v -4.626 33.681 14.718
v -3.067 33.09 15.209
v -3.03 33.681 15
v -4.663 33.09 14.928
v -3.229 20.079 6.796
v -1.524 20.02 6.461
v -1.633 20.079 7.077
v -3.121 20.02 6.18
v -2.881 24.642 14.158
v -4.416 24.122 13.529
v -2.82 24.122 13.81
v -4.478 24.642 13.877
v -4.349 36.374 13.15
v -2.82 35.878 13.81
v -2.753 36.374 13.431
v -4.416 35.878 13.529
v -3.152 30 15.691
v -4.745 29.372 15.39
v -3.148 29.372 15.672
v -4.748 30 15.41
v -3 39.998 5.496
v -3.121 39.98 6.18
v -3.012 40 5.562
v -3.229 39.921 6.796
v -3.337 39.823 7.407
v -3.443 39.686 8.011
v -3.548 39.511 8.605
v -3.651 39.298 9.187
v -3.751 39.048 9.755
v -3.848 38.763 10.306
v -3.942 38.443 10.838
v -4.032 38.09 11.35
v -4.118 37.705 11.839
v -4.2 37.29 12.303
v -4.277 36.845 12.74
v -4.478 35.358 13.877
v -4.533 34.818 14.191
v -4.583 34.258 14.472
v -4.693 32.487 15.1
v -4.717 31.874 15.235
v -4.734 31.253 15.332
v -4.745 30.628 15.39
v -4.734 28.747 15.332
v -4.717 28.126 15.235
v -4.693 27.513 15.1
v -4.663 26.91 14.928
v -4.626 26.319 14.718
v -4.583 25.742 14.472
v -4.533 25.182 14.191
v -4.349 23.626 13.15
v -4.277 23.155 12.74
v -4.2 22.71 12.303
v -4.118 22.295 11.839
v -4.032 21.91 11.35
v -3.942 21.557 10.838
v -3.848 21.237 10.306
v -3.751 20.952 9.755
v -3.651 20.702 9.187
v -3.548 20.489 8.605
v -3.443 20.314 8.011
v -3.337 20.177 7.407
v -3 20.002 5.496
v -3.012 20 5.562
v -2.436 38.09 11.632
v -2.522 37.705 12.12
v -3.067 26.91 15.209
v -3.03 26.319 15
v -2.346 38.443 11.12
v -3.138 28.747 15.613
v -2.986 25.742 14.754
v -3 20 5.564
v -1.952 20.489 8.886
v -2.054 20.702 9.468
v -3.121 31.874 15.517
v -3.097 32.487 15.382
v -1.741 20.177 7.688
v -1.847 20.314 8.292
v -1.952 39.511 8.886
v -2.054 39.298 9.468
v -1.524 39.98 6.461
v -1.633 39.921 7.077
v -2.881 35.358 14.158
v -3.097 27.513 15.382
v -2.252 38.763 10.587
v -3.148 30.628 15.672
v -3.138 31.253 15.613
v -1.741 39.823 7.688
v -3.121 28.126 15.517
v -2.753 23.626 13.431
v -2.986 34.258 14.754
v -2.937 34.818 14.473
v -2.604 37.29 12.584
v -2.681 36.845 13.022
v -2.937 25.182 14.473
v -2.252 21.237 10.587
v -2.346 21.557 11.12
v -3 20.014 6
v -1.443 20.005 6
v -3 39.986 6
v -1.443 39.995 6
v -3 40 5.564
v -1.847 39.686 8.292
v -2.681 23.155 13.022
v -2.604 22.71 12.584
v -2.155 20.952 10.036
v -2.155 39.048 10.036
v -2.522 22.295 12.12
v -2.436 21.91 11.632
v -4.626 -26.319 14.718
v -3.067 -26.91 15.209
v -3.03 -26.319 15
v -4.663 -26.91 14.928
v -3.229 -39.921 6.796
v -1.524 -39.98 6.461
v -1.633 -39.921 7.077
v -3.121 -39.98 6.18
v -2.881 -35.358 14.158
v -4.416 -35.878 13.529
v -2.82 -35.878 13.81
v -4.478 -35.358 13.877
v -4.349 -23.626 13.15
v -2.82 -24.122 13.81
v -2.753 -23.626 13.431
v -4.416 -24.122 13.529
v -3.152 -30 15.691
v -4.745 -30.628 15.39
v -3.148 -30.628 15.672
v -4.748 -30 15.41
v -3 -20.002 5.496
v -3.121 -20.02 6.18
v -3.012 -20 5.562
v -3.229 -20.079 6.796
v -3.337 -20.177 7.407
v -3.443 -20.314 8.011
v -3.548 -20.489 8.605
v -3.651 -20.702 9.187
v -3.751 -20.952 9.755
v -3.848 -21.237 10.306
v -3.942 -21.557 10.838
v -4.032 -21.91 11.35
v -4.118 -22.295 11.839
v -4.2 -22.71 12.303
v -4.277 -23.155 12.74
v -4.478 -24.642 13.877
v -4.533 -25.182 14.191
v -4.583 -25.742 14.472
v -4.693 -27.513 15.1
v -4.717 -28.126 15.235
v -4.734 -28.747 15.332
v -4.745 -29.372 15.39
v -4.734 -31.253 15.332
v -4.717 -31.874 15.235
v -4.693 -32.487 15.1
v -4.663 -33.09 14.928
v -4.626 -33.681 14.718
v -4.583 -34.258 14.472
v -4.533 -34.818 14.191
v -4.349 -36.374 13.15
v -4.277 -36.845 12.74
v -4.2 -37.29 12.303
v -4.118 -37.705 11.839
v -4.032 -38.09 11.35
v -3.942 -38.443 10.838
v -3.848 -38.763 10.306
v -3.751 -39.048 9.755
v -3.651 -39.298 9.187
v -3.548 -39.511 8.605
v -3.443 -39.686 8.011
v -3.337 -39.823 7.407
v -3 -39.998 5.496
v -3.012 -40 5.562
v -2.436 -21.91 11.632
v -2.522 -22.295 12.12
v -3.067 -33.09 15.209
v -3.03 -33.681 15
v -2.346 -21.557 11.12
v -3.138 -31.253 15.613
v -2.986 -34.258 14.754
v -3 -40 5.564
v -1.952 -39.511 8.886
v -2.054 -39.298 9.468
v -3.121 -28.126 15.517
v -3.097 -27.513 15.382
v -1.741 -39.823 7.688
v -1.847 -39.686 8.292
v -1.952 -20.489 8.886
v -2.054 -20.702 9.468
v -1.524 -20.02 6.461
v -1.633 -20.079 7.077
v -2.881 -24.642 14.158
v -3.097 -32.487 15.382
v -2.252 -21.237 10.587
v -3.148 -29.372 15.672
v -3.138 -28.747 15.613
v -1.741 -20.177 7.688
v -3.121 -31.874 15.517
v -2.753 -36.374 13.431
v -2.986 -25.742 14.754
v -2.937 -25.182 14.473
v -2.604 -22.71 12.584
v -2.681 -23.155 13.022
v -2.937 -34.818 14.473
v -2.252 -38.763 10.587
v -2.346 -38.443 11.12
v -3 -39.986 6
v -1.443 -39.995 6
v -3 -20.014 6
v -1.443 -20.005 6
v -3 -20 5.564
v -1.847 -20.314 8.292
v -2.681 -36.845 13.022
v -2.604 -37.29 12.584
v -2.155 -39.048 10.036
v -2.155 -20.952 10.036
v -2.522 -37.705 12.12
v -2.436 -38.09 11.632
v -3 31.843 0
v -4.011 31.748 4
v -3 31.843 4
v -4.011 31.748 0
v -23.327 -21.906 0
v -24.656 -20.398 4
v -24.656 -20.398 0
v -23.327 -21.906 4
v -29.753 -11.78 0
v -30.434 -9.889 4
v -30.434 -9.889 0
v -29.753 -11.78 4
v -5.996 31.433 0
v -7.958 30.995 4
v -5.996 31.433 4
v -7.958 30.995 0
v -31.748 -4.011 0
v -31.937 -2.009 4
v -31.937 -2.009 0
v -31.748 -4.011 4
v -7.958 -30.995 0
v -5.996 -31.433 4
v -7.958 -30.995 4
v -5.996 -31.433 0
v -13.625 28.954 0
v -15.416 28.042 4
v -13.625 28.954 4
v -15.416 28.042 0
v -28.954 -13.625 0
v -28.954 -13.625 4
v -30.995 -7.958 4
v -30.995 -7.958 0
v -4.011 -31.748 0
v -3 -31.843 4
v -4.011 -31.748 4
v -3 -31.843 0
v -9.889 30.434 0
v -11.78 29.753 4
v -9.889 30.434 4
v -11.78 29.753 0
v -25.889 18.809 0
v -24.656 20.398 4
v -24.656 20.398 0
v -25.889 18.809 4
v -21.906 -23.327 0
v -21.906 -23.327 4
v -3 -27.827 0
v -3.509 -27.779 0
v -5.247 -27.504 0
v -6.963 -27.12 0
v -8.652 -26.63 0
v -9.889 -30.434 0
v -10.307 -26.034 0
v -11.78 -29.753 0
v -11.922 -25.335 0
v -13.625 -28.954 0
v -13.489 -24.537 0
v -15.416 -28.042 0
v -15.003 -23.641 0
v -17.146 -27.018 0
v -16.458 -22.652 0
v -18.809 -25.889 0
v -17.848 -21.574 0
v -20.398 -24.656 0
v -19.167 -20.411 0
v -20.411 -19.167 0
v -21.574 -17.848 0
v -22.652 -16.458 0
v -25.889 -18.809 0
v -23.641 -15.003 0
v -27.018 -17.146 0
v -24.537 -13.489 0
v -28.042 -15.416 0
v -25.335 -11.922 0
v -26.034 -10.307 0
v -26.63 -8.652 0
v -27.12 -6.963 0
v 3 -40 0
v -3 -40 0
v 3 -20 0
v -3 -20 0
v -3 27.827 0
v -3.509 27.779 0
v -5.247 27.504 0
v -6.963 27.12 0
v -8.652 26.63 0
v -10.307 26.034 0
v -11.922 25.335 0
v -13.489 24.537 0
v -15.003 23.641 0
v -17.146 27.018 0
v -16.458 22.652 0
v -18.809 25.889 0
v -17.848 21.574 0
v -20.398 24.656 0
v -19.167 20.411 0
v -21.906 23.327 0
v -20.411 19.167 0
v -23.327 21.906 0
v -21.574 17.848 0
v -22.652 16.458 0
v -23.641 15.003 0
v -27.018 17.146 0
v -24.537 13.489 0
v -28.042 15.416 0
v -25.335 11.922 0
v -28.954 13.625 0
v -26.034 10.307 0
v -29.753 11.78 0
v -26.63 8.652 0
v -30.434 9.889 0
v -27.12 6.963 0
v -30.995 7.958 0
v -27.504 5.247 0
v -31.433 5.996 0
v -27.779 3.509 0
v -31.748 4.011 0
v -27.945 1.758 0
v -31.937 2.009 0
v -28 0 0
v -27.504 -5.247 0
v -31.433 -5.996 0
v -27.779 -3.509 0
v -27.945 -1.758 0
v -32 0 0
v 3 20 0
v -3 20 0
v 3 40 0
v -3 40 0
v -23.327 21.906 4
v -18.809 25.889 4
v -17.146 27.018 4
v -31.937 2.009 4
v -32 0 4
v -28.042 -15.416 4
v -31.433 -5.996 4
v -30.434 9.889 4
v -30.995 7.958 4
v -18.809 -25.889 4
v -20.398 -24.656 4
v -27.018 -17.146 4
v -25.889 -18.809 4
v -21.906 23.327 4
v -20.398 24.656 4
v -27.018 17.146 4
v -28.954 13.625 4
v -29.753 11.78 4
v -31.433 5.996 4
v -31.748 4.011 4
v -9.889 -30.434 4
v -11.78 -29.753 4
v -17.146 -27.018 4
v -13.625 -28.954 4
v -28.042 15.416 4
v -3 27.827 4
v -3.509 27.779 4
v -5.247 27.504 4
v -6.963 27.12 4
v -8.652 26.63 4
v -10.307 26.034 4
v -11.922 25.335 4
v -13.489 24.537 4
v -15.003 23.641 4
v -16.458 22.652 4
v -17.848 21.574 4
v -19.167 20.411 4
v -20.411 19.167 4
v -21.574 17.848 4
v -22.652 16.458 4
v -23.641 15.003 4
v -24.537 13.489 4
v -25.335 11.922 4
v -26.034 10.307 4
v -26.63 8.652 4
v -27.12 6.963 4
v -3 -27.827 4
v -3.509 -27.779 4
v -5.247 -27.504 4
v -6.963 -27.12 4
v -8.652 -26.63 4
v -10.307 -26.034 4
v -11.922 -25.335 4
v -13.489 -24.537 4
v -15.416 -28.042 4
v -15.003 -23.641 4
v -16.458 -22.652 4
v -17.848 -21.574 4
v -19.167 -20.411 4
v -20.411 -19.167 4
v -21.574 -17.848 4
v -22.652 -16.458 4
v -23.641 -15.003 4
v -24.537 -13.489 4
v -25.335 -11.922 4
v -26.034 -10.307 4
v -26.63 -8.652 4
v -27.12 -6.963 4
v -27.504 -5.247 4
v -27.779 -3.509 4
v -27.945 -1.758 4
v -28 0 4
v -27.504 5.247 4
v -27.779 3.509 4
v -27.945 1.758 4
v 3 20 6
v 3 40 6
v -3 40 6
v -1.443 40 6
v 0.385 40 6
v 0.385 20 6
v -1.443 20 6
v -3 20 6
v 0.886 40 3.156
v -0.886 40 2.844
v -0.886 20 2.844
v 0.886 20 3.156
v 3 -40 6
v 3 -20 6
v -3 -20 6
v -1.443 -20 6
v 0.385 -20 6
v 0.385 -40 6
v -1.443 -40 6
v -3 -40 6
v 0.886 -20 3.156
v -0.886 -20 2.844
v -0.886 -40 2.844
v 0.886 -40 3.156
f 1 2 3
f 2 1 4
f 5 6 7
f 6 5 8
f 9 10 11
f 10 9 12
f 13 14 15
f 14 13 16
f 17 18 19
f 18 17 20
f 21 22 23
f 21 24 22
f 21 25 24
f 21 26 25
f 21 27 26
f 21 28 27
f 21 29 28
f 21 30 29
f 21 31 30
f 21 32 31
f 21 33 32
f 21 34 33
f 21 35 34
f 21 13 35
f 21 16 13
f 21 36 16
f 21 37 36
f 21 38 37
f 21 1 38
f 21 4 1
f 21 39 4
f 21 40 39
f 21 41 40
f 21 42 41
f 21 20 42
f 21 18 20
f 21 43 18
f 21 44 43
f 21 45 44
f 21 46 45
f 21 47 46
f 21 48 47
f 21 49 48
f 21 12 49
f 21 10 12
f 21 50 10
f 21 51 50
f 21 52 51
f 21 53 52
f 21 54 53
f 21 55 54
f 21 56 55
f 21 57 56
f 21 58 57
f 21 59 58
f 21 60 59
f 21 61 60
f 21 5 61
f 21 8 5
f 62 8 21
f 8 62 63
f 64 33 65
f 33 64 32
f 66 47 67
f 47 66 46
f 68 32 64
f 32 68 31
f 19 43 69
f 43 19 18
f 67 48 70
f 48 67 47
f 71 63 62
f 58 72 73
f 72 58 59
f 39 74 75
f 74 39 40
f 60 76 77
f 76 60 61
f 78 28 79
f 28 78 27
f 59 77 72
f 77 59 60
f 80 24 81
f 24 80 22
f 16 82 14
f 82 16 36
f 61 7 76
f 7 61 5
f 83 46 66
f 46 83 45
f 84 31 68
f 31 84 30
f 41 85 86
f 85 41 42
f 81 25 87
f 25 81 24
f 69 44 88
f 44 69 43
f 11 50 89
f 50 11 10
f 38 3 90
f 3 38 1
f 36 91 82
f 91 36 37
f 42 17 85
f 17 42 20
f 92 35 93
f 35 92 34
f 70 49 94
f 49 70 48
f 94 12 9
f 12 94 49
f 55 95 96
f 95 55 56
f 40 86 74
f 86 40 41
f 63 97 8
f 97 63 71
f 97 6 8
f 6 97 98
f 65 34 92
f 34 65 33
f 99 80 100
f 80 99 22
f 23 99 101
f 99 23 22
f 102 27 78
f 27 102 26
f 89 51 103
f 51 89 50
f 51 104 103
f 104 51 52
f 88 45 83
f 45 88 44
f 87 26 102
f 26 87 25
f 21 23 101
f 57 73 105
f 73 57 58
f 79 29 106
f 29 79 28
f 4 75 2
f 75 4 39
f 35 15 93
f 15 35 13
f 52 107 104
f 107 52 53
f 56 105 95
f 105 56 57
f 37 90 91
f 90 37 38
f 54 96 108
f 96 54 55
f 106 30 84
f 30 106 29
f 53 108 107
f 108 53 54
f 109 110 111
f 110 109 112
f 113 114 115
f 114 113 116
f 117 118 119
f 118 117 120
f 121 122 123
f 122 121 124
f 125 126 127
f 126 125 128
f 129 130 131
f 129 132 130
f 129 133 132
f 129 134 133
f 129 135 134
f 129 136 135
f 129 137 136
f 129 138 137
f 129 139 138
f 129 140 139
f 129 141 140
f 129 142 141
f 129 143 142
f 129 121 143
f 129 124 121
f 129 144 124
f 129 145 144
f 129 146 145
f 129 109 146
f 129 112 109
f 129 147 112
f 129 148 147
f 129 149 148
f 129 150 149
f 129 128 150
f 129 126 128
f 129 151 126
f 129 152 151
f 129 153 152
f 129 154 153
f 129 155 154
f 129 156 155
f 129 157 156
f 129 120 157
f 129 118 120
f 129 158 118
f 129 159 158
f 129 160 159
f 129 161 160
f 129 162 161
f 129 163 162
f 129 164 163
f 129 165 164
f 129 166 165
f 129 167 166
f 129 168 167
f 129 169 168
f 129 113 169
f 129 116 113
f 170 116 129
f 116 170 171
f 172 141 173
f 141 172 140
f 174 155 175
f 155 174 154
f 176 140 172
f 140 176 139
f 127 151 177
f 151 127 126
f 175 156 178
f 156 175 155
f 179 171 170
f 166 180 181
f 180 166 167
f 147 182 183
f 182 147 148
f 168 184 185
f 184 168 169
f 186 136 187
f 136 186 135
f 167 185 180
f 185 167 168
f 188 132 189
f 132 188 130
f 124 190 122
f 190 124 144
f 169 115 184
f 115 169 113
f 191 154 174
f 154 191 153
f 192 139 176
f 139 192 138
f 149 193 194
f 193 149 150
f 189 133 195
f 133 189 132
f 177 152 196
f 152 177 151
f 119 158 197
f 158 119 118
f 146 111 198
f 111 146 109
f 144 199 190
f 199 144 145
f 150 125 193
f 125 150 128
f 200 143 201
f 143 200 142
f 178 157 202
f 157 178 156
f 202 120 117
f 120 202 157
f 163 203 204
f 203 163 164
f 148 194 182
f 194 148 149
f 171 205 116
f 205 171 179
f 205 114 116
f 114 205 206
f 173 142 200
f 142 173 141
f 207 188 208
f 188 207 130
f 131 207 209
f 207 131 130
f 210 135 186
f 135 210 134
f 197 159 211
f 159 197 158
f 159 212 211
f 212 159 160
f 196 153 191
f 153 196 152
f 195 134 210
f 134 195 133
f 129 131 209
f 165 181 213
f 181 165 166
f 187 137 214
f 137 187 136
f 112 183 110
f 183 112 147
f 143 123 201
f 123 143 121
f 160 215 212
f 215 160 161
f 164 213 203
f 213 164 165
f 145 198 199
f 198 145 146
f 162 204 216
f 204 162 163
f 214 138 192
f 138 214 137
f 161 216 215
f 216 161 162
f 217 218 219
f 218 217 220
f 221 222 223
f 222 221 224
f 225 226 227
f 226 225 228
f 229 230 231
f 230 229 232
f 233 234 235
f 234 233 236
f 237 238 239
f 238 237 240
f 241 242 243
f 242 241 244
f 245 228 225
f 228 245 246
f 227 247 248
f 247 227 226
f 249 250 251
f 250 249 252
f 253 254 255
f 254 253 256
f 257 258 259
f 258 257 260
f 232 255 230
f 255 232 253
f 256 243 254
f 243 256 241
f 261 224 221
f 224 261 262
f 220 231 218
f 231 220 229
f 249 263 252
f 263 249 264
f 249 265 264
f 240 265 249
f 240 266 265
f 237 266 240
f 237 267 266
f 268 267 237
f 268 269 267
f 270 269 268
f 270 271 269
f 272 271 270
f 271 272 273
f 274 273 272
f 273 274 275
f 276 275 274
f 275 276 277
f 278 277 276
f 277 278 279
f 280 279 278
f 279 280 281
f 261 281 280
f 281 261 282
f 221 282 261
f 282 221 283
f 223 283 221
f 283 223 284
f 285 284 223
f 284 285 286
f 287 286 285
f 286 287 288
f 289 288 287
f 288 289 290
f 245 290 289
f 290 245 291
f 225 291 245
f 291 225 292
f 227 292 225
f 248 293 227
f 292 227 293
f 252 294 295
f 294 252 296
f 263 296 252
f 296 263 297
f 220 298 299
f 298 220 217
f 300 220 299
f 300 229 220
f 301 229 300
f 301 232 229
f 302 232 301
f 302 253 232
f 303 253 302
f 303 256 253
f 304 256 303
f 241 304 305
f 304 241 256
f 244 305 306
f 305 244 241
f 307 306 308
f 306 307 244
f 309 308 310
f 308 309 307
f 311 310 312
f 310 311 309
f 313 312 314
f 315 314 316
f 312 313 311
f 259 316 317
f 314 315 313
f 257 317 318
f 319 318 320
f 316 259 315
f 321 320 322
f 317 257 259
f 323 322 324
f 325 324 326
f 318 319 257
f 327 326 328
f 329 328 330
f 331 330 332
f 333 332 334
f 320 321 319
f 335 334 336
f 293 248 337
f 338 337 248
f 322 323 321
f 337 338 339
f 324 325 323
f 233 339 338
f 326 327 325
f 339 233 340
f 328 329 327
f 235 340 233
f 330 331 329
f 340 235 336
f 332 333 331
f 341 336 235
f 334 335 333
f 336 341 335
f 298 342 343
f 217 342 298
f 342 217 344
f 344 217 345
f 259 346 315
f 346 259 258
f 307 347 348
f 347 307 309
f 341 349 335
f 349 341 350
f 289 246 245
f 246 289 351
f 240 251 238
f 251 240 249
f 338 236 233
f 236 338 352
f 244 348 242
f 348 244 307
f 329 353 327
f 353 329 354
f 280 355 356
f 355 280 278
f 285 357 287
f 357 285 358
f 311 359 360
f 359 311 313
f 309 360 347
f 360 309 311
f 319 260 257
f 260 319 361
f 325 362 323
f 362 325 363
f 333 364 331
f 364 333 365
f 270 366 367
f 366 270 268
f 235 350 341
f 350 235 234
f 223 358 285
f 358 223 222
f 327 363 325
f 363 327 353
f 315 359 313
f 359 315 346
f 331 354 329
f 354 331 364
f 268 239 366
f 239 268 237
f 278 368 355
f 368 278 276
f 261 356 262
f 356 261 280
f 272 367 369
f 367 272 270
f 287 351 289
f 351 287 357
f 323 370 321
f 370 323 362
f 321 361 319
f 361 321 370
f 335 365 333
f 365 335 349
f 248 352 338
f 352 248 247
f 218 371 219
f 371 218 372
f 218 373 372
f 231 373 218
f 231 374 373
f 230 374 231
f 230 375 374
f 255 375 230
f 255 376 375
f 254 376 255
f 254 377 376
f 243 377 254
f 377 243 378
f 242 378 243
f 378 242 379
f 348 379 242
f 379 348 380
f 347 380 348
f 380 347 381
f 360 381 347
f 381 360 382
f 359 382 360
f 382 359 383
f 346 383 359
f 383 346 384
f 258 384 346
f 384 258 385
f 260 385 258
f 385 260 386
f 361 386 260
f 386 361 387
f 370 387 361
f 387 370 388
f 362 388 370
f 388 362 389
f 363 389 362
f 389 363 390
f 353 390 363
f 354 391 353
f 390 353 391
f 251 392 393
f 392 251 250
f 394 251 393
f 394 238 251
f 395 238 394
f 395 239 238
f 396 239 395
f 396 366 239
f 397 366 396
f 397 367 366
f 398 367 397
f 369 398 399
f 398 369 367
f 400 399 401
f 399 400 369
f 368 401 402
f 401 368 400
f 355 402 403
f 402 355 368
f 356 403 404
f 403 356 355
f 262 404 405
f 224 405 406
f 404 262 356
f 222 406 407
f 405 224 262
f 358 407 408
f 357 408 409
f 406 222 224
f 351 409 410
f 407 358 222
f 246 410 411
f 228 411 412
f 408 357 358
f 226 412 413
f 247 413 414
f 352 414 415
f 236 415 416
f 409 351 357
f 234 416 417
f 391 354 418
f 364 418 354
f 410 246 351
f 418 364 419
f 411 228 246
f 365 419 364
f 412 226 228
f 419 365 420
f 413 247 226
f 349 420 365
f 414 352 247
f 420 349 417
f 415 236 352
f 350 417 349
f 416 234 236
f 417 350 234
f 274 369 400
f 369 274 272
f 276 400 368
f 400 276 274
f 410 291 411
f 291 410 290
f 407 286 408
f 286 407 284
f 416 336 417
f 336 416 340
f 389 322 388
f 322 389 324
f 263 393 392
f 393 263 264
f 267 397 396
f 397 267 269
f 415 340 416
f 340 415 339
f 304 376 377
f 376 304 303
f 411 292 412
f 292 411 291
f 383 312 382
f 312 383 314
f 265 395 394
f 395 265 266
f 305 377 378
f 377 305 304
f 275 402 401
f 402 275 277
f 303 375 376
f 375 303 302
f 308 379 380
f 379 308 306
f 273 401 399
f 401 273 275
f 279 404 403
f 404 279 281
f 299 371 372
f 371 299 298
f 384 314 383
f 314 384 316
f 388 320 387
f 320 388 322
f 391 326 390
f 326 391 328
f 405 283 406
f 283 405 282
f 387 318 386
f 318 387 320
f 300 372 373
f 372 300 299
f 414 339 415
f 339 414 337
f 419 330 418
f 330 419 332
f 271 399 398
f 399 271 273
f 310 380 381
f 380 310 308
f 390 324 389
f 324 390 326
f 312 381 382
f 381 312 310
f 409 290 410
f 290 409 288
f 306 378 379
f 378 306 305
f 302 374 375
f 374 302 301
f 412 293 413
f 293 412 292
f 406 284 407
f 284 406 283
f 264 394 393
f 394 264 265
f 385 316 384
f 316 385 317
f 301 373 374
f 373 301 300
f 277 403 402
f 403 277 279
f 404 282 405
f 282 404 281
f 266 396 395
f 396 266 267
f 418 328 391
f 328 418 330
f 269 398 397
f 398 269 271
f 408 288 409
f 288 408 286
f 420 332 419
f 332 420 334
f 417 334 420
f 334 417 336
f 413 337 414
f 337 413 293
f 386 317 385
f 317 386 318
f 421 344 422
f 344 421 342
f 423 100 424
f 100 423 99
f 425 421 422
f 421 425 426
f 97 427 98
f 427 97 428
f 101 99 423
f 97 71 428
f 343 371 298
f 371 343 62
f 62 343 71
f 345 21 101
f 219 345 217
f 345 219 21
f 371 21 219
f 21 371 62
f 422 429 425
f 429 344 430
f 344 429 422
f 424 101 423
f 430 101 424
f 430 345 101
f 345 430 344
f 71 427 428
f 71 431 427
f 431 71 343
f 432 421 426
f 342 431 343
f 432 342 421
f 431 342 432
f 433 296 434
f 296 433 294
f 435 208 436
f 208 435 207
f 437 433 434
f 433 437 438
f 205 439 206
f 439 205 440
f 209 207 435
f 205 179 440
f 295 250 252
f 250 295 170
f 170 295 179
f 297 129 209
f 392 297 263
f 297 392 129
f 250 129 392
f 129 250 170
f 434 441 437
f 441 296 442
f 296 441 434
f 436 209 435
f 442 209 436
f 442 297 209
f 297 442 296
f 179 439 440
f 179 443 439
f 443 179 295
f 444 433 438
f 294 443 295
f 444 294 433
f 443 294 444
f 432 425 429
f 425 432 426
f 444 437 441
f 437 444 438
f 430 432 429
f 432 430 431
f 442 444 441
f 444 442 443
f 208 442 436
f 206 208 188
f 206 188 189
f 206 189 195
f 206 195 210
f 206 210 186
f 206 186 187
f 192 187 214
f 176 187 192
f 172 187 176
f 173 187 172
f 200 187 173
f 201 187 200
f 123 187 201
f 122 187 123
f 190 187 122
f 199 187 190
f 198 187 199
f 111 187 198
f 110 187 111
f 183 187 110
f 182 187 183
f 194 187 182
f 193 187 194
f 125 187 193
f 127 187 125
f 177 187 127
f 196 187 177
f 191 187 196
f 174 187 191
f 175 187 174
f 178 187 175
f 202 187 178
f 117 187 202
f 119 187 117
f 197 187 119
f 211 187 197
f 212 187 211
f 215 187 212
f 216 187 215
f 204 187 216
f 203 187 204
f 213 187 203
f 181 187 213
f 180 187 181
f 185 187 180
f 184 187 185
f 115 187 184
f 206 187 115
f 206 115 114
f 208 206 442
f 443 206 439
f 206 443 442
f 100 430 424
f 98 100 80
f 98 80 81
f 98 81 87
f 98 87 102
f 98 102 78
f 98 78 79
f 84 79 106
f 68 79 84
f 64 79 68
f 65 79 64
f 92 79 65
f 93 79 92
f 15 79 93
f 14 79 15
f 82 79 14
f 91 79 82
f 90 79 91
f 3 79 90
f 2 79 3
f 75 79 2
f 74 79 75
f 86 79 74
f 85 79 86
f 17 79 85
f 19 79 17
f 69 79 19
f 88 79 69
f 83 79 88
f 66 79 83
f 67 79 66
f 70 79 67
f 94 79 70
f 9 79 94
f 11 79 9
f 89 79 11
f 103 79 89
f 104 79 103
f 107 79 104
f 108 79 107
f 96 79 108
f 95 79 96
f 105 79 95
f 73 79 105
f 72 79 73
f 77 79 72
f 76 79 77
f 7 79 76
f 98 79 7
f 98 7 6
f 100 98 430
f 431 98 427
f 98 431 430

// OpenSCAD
// SPDX-FileCopyrightText: 2025 Hackropole
// SPDX-License-Identifier: CC-BY-4.0

$fn=100;

// Hackropole badge, 3mm above ground
//color("blue") translate([0, 0, 3]) rotate([0, -10, 0]) translate([0, 0, 94/2]) cube([1.6, 94, 94], center=true);

// Badge stand
color("white") difference() {
    union() {
        translate([-3, 20, 0]) cube([6, 20, 6]);
        translate([-3, -20-20, 0]) cube([6, 20, 6]);

        // Back support
        translate([0, 30, 0]) rotate([0, 90-10, 0]) translate([-6, 0, -2]) difference() {
            cylinder(h=2, r=10);
            translate([2, -10, -1]) cube([10, 20, 10]);
        }
        translate([0, -30, 0]) rotate([0, 90-10, 0]) translate([-6, 0, -2]) difference() {
            cylinder(h=2, r=10);
            translate([2, -10, -1]) cube([10, 20, 10]);
        }

        // Prevent tipping
        difference() {
            cylinder(h=4, r=30+2);
            translate([0, 0, -1]) cylinder(h=6, r=30-2);
            translate([0, -40, -1]) cube([40, 80, 6]);
        }
    }
    
    // Badge cutout
    translate([0, 0, 3]) rotate([0, -10, 0]) translate([0, 0, 94/2]) cube([1.6+0.2, 94, 94], center=true);
}
